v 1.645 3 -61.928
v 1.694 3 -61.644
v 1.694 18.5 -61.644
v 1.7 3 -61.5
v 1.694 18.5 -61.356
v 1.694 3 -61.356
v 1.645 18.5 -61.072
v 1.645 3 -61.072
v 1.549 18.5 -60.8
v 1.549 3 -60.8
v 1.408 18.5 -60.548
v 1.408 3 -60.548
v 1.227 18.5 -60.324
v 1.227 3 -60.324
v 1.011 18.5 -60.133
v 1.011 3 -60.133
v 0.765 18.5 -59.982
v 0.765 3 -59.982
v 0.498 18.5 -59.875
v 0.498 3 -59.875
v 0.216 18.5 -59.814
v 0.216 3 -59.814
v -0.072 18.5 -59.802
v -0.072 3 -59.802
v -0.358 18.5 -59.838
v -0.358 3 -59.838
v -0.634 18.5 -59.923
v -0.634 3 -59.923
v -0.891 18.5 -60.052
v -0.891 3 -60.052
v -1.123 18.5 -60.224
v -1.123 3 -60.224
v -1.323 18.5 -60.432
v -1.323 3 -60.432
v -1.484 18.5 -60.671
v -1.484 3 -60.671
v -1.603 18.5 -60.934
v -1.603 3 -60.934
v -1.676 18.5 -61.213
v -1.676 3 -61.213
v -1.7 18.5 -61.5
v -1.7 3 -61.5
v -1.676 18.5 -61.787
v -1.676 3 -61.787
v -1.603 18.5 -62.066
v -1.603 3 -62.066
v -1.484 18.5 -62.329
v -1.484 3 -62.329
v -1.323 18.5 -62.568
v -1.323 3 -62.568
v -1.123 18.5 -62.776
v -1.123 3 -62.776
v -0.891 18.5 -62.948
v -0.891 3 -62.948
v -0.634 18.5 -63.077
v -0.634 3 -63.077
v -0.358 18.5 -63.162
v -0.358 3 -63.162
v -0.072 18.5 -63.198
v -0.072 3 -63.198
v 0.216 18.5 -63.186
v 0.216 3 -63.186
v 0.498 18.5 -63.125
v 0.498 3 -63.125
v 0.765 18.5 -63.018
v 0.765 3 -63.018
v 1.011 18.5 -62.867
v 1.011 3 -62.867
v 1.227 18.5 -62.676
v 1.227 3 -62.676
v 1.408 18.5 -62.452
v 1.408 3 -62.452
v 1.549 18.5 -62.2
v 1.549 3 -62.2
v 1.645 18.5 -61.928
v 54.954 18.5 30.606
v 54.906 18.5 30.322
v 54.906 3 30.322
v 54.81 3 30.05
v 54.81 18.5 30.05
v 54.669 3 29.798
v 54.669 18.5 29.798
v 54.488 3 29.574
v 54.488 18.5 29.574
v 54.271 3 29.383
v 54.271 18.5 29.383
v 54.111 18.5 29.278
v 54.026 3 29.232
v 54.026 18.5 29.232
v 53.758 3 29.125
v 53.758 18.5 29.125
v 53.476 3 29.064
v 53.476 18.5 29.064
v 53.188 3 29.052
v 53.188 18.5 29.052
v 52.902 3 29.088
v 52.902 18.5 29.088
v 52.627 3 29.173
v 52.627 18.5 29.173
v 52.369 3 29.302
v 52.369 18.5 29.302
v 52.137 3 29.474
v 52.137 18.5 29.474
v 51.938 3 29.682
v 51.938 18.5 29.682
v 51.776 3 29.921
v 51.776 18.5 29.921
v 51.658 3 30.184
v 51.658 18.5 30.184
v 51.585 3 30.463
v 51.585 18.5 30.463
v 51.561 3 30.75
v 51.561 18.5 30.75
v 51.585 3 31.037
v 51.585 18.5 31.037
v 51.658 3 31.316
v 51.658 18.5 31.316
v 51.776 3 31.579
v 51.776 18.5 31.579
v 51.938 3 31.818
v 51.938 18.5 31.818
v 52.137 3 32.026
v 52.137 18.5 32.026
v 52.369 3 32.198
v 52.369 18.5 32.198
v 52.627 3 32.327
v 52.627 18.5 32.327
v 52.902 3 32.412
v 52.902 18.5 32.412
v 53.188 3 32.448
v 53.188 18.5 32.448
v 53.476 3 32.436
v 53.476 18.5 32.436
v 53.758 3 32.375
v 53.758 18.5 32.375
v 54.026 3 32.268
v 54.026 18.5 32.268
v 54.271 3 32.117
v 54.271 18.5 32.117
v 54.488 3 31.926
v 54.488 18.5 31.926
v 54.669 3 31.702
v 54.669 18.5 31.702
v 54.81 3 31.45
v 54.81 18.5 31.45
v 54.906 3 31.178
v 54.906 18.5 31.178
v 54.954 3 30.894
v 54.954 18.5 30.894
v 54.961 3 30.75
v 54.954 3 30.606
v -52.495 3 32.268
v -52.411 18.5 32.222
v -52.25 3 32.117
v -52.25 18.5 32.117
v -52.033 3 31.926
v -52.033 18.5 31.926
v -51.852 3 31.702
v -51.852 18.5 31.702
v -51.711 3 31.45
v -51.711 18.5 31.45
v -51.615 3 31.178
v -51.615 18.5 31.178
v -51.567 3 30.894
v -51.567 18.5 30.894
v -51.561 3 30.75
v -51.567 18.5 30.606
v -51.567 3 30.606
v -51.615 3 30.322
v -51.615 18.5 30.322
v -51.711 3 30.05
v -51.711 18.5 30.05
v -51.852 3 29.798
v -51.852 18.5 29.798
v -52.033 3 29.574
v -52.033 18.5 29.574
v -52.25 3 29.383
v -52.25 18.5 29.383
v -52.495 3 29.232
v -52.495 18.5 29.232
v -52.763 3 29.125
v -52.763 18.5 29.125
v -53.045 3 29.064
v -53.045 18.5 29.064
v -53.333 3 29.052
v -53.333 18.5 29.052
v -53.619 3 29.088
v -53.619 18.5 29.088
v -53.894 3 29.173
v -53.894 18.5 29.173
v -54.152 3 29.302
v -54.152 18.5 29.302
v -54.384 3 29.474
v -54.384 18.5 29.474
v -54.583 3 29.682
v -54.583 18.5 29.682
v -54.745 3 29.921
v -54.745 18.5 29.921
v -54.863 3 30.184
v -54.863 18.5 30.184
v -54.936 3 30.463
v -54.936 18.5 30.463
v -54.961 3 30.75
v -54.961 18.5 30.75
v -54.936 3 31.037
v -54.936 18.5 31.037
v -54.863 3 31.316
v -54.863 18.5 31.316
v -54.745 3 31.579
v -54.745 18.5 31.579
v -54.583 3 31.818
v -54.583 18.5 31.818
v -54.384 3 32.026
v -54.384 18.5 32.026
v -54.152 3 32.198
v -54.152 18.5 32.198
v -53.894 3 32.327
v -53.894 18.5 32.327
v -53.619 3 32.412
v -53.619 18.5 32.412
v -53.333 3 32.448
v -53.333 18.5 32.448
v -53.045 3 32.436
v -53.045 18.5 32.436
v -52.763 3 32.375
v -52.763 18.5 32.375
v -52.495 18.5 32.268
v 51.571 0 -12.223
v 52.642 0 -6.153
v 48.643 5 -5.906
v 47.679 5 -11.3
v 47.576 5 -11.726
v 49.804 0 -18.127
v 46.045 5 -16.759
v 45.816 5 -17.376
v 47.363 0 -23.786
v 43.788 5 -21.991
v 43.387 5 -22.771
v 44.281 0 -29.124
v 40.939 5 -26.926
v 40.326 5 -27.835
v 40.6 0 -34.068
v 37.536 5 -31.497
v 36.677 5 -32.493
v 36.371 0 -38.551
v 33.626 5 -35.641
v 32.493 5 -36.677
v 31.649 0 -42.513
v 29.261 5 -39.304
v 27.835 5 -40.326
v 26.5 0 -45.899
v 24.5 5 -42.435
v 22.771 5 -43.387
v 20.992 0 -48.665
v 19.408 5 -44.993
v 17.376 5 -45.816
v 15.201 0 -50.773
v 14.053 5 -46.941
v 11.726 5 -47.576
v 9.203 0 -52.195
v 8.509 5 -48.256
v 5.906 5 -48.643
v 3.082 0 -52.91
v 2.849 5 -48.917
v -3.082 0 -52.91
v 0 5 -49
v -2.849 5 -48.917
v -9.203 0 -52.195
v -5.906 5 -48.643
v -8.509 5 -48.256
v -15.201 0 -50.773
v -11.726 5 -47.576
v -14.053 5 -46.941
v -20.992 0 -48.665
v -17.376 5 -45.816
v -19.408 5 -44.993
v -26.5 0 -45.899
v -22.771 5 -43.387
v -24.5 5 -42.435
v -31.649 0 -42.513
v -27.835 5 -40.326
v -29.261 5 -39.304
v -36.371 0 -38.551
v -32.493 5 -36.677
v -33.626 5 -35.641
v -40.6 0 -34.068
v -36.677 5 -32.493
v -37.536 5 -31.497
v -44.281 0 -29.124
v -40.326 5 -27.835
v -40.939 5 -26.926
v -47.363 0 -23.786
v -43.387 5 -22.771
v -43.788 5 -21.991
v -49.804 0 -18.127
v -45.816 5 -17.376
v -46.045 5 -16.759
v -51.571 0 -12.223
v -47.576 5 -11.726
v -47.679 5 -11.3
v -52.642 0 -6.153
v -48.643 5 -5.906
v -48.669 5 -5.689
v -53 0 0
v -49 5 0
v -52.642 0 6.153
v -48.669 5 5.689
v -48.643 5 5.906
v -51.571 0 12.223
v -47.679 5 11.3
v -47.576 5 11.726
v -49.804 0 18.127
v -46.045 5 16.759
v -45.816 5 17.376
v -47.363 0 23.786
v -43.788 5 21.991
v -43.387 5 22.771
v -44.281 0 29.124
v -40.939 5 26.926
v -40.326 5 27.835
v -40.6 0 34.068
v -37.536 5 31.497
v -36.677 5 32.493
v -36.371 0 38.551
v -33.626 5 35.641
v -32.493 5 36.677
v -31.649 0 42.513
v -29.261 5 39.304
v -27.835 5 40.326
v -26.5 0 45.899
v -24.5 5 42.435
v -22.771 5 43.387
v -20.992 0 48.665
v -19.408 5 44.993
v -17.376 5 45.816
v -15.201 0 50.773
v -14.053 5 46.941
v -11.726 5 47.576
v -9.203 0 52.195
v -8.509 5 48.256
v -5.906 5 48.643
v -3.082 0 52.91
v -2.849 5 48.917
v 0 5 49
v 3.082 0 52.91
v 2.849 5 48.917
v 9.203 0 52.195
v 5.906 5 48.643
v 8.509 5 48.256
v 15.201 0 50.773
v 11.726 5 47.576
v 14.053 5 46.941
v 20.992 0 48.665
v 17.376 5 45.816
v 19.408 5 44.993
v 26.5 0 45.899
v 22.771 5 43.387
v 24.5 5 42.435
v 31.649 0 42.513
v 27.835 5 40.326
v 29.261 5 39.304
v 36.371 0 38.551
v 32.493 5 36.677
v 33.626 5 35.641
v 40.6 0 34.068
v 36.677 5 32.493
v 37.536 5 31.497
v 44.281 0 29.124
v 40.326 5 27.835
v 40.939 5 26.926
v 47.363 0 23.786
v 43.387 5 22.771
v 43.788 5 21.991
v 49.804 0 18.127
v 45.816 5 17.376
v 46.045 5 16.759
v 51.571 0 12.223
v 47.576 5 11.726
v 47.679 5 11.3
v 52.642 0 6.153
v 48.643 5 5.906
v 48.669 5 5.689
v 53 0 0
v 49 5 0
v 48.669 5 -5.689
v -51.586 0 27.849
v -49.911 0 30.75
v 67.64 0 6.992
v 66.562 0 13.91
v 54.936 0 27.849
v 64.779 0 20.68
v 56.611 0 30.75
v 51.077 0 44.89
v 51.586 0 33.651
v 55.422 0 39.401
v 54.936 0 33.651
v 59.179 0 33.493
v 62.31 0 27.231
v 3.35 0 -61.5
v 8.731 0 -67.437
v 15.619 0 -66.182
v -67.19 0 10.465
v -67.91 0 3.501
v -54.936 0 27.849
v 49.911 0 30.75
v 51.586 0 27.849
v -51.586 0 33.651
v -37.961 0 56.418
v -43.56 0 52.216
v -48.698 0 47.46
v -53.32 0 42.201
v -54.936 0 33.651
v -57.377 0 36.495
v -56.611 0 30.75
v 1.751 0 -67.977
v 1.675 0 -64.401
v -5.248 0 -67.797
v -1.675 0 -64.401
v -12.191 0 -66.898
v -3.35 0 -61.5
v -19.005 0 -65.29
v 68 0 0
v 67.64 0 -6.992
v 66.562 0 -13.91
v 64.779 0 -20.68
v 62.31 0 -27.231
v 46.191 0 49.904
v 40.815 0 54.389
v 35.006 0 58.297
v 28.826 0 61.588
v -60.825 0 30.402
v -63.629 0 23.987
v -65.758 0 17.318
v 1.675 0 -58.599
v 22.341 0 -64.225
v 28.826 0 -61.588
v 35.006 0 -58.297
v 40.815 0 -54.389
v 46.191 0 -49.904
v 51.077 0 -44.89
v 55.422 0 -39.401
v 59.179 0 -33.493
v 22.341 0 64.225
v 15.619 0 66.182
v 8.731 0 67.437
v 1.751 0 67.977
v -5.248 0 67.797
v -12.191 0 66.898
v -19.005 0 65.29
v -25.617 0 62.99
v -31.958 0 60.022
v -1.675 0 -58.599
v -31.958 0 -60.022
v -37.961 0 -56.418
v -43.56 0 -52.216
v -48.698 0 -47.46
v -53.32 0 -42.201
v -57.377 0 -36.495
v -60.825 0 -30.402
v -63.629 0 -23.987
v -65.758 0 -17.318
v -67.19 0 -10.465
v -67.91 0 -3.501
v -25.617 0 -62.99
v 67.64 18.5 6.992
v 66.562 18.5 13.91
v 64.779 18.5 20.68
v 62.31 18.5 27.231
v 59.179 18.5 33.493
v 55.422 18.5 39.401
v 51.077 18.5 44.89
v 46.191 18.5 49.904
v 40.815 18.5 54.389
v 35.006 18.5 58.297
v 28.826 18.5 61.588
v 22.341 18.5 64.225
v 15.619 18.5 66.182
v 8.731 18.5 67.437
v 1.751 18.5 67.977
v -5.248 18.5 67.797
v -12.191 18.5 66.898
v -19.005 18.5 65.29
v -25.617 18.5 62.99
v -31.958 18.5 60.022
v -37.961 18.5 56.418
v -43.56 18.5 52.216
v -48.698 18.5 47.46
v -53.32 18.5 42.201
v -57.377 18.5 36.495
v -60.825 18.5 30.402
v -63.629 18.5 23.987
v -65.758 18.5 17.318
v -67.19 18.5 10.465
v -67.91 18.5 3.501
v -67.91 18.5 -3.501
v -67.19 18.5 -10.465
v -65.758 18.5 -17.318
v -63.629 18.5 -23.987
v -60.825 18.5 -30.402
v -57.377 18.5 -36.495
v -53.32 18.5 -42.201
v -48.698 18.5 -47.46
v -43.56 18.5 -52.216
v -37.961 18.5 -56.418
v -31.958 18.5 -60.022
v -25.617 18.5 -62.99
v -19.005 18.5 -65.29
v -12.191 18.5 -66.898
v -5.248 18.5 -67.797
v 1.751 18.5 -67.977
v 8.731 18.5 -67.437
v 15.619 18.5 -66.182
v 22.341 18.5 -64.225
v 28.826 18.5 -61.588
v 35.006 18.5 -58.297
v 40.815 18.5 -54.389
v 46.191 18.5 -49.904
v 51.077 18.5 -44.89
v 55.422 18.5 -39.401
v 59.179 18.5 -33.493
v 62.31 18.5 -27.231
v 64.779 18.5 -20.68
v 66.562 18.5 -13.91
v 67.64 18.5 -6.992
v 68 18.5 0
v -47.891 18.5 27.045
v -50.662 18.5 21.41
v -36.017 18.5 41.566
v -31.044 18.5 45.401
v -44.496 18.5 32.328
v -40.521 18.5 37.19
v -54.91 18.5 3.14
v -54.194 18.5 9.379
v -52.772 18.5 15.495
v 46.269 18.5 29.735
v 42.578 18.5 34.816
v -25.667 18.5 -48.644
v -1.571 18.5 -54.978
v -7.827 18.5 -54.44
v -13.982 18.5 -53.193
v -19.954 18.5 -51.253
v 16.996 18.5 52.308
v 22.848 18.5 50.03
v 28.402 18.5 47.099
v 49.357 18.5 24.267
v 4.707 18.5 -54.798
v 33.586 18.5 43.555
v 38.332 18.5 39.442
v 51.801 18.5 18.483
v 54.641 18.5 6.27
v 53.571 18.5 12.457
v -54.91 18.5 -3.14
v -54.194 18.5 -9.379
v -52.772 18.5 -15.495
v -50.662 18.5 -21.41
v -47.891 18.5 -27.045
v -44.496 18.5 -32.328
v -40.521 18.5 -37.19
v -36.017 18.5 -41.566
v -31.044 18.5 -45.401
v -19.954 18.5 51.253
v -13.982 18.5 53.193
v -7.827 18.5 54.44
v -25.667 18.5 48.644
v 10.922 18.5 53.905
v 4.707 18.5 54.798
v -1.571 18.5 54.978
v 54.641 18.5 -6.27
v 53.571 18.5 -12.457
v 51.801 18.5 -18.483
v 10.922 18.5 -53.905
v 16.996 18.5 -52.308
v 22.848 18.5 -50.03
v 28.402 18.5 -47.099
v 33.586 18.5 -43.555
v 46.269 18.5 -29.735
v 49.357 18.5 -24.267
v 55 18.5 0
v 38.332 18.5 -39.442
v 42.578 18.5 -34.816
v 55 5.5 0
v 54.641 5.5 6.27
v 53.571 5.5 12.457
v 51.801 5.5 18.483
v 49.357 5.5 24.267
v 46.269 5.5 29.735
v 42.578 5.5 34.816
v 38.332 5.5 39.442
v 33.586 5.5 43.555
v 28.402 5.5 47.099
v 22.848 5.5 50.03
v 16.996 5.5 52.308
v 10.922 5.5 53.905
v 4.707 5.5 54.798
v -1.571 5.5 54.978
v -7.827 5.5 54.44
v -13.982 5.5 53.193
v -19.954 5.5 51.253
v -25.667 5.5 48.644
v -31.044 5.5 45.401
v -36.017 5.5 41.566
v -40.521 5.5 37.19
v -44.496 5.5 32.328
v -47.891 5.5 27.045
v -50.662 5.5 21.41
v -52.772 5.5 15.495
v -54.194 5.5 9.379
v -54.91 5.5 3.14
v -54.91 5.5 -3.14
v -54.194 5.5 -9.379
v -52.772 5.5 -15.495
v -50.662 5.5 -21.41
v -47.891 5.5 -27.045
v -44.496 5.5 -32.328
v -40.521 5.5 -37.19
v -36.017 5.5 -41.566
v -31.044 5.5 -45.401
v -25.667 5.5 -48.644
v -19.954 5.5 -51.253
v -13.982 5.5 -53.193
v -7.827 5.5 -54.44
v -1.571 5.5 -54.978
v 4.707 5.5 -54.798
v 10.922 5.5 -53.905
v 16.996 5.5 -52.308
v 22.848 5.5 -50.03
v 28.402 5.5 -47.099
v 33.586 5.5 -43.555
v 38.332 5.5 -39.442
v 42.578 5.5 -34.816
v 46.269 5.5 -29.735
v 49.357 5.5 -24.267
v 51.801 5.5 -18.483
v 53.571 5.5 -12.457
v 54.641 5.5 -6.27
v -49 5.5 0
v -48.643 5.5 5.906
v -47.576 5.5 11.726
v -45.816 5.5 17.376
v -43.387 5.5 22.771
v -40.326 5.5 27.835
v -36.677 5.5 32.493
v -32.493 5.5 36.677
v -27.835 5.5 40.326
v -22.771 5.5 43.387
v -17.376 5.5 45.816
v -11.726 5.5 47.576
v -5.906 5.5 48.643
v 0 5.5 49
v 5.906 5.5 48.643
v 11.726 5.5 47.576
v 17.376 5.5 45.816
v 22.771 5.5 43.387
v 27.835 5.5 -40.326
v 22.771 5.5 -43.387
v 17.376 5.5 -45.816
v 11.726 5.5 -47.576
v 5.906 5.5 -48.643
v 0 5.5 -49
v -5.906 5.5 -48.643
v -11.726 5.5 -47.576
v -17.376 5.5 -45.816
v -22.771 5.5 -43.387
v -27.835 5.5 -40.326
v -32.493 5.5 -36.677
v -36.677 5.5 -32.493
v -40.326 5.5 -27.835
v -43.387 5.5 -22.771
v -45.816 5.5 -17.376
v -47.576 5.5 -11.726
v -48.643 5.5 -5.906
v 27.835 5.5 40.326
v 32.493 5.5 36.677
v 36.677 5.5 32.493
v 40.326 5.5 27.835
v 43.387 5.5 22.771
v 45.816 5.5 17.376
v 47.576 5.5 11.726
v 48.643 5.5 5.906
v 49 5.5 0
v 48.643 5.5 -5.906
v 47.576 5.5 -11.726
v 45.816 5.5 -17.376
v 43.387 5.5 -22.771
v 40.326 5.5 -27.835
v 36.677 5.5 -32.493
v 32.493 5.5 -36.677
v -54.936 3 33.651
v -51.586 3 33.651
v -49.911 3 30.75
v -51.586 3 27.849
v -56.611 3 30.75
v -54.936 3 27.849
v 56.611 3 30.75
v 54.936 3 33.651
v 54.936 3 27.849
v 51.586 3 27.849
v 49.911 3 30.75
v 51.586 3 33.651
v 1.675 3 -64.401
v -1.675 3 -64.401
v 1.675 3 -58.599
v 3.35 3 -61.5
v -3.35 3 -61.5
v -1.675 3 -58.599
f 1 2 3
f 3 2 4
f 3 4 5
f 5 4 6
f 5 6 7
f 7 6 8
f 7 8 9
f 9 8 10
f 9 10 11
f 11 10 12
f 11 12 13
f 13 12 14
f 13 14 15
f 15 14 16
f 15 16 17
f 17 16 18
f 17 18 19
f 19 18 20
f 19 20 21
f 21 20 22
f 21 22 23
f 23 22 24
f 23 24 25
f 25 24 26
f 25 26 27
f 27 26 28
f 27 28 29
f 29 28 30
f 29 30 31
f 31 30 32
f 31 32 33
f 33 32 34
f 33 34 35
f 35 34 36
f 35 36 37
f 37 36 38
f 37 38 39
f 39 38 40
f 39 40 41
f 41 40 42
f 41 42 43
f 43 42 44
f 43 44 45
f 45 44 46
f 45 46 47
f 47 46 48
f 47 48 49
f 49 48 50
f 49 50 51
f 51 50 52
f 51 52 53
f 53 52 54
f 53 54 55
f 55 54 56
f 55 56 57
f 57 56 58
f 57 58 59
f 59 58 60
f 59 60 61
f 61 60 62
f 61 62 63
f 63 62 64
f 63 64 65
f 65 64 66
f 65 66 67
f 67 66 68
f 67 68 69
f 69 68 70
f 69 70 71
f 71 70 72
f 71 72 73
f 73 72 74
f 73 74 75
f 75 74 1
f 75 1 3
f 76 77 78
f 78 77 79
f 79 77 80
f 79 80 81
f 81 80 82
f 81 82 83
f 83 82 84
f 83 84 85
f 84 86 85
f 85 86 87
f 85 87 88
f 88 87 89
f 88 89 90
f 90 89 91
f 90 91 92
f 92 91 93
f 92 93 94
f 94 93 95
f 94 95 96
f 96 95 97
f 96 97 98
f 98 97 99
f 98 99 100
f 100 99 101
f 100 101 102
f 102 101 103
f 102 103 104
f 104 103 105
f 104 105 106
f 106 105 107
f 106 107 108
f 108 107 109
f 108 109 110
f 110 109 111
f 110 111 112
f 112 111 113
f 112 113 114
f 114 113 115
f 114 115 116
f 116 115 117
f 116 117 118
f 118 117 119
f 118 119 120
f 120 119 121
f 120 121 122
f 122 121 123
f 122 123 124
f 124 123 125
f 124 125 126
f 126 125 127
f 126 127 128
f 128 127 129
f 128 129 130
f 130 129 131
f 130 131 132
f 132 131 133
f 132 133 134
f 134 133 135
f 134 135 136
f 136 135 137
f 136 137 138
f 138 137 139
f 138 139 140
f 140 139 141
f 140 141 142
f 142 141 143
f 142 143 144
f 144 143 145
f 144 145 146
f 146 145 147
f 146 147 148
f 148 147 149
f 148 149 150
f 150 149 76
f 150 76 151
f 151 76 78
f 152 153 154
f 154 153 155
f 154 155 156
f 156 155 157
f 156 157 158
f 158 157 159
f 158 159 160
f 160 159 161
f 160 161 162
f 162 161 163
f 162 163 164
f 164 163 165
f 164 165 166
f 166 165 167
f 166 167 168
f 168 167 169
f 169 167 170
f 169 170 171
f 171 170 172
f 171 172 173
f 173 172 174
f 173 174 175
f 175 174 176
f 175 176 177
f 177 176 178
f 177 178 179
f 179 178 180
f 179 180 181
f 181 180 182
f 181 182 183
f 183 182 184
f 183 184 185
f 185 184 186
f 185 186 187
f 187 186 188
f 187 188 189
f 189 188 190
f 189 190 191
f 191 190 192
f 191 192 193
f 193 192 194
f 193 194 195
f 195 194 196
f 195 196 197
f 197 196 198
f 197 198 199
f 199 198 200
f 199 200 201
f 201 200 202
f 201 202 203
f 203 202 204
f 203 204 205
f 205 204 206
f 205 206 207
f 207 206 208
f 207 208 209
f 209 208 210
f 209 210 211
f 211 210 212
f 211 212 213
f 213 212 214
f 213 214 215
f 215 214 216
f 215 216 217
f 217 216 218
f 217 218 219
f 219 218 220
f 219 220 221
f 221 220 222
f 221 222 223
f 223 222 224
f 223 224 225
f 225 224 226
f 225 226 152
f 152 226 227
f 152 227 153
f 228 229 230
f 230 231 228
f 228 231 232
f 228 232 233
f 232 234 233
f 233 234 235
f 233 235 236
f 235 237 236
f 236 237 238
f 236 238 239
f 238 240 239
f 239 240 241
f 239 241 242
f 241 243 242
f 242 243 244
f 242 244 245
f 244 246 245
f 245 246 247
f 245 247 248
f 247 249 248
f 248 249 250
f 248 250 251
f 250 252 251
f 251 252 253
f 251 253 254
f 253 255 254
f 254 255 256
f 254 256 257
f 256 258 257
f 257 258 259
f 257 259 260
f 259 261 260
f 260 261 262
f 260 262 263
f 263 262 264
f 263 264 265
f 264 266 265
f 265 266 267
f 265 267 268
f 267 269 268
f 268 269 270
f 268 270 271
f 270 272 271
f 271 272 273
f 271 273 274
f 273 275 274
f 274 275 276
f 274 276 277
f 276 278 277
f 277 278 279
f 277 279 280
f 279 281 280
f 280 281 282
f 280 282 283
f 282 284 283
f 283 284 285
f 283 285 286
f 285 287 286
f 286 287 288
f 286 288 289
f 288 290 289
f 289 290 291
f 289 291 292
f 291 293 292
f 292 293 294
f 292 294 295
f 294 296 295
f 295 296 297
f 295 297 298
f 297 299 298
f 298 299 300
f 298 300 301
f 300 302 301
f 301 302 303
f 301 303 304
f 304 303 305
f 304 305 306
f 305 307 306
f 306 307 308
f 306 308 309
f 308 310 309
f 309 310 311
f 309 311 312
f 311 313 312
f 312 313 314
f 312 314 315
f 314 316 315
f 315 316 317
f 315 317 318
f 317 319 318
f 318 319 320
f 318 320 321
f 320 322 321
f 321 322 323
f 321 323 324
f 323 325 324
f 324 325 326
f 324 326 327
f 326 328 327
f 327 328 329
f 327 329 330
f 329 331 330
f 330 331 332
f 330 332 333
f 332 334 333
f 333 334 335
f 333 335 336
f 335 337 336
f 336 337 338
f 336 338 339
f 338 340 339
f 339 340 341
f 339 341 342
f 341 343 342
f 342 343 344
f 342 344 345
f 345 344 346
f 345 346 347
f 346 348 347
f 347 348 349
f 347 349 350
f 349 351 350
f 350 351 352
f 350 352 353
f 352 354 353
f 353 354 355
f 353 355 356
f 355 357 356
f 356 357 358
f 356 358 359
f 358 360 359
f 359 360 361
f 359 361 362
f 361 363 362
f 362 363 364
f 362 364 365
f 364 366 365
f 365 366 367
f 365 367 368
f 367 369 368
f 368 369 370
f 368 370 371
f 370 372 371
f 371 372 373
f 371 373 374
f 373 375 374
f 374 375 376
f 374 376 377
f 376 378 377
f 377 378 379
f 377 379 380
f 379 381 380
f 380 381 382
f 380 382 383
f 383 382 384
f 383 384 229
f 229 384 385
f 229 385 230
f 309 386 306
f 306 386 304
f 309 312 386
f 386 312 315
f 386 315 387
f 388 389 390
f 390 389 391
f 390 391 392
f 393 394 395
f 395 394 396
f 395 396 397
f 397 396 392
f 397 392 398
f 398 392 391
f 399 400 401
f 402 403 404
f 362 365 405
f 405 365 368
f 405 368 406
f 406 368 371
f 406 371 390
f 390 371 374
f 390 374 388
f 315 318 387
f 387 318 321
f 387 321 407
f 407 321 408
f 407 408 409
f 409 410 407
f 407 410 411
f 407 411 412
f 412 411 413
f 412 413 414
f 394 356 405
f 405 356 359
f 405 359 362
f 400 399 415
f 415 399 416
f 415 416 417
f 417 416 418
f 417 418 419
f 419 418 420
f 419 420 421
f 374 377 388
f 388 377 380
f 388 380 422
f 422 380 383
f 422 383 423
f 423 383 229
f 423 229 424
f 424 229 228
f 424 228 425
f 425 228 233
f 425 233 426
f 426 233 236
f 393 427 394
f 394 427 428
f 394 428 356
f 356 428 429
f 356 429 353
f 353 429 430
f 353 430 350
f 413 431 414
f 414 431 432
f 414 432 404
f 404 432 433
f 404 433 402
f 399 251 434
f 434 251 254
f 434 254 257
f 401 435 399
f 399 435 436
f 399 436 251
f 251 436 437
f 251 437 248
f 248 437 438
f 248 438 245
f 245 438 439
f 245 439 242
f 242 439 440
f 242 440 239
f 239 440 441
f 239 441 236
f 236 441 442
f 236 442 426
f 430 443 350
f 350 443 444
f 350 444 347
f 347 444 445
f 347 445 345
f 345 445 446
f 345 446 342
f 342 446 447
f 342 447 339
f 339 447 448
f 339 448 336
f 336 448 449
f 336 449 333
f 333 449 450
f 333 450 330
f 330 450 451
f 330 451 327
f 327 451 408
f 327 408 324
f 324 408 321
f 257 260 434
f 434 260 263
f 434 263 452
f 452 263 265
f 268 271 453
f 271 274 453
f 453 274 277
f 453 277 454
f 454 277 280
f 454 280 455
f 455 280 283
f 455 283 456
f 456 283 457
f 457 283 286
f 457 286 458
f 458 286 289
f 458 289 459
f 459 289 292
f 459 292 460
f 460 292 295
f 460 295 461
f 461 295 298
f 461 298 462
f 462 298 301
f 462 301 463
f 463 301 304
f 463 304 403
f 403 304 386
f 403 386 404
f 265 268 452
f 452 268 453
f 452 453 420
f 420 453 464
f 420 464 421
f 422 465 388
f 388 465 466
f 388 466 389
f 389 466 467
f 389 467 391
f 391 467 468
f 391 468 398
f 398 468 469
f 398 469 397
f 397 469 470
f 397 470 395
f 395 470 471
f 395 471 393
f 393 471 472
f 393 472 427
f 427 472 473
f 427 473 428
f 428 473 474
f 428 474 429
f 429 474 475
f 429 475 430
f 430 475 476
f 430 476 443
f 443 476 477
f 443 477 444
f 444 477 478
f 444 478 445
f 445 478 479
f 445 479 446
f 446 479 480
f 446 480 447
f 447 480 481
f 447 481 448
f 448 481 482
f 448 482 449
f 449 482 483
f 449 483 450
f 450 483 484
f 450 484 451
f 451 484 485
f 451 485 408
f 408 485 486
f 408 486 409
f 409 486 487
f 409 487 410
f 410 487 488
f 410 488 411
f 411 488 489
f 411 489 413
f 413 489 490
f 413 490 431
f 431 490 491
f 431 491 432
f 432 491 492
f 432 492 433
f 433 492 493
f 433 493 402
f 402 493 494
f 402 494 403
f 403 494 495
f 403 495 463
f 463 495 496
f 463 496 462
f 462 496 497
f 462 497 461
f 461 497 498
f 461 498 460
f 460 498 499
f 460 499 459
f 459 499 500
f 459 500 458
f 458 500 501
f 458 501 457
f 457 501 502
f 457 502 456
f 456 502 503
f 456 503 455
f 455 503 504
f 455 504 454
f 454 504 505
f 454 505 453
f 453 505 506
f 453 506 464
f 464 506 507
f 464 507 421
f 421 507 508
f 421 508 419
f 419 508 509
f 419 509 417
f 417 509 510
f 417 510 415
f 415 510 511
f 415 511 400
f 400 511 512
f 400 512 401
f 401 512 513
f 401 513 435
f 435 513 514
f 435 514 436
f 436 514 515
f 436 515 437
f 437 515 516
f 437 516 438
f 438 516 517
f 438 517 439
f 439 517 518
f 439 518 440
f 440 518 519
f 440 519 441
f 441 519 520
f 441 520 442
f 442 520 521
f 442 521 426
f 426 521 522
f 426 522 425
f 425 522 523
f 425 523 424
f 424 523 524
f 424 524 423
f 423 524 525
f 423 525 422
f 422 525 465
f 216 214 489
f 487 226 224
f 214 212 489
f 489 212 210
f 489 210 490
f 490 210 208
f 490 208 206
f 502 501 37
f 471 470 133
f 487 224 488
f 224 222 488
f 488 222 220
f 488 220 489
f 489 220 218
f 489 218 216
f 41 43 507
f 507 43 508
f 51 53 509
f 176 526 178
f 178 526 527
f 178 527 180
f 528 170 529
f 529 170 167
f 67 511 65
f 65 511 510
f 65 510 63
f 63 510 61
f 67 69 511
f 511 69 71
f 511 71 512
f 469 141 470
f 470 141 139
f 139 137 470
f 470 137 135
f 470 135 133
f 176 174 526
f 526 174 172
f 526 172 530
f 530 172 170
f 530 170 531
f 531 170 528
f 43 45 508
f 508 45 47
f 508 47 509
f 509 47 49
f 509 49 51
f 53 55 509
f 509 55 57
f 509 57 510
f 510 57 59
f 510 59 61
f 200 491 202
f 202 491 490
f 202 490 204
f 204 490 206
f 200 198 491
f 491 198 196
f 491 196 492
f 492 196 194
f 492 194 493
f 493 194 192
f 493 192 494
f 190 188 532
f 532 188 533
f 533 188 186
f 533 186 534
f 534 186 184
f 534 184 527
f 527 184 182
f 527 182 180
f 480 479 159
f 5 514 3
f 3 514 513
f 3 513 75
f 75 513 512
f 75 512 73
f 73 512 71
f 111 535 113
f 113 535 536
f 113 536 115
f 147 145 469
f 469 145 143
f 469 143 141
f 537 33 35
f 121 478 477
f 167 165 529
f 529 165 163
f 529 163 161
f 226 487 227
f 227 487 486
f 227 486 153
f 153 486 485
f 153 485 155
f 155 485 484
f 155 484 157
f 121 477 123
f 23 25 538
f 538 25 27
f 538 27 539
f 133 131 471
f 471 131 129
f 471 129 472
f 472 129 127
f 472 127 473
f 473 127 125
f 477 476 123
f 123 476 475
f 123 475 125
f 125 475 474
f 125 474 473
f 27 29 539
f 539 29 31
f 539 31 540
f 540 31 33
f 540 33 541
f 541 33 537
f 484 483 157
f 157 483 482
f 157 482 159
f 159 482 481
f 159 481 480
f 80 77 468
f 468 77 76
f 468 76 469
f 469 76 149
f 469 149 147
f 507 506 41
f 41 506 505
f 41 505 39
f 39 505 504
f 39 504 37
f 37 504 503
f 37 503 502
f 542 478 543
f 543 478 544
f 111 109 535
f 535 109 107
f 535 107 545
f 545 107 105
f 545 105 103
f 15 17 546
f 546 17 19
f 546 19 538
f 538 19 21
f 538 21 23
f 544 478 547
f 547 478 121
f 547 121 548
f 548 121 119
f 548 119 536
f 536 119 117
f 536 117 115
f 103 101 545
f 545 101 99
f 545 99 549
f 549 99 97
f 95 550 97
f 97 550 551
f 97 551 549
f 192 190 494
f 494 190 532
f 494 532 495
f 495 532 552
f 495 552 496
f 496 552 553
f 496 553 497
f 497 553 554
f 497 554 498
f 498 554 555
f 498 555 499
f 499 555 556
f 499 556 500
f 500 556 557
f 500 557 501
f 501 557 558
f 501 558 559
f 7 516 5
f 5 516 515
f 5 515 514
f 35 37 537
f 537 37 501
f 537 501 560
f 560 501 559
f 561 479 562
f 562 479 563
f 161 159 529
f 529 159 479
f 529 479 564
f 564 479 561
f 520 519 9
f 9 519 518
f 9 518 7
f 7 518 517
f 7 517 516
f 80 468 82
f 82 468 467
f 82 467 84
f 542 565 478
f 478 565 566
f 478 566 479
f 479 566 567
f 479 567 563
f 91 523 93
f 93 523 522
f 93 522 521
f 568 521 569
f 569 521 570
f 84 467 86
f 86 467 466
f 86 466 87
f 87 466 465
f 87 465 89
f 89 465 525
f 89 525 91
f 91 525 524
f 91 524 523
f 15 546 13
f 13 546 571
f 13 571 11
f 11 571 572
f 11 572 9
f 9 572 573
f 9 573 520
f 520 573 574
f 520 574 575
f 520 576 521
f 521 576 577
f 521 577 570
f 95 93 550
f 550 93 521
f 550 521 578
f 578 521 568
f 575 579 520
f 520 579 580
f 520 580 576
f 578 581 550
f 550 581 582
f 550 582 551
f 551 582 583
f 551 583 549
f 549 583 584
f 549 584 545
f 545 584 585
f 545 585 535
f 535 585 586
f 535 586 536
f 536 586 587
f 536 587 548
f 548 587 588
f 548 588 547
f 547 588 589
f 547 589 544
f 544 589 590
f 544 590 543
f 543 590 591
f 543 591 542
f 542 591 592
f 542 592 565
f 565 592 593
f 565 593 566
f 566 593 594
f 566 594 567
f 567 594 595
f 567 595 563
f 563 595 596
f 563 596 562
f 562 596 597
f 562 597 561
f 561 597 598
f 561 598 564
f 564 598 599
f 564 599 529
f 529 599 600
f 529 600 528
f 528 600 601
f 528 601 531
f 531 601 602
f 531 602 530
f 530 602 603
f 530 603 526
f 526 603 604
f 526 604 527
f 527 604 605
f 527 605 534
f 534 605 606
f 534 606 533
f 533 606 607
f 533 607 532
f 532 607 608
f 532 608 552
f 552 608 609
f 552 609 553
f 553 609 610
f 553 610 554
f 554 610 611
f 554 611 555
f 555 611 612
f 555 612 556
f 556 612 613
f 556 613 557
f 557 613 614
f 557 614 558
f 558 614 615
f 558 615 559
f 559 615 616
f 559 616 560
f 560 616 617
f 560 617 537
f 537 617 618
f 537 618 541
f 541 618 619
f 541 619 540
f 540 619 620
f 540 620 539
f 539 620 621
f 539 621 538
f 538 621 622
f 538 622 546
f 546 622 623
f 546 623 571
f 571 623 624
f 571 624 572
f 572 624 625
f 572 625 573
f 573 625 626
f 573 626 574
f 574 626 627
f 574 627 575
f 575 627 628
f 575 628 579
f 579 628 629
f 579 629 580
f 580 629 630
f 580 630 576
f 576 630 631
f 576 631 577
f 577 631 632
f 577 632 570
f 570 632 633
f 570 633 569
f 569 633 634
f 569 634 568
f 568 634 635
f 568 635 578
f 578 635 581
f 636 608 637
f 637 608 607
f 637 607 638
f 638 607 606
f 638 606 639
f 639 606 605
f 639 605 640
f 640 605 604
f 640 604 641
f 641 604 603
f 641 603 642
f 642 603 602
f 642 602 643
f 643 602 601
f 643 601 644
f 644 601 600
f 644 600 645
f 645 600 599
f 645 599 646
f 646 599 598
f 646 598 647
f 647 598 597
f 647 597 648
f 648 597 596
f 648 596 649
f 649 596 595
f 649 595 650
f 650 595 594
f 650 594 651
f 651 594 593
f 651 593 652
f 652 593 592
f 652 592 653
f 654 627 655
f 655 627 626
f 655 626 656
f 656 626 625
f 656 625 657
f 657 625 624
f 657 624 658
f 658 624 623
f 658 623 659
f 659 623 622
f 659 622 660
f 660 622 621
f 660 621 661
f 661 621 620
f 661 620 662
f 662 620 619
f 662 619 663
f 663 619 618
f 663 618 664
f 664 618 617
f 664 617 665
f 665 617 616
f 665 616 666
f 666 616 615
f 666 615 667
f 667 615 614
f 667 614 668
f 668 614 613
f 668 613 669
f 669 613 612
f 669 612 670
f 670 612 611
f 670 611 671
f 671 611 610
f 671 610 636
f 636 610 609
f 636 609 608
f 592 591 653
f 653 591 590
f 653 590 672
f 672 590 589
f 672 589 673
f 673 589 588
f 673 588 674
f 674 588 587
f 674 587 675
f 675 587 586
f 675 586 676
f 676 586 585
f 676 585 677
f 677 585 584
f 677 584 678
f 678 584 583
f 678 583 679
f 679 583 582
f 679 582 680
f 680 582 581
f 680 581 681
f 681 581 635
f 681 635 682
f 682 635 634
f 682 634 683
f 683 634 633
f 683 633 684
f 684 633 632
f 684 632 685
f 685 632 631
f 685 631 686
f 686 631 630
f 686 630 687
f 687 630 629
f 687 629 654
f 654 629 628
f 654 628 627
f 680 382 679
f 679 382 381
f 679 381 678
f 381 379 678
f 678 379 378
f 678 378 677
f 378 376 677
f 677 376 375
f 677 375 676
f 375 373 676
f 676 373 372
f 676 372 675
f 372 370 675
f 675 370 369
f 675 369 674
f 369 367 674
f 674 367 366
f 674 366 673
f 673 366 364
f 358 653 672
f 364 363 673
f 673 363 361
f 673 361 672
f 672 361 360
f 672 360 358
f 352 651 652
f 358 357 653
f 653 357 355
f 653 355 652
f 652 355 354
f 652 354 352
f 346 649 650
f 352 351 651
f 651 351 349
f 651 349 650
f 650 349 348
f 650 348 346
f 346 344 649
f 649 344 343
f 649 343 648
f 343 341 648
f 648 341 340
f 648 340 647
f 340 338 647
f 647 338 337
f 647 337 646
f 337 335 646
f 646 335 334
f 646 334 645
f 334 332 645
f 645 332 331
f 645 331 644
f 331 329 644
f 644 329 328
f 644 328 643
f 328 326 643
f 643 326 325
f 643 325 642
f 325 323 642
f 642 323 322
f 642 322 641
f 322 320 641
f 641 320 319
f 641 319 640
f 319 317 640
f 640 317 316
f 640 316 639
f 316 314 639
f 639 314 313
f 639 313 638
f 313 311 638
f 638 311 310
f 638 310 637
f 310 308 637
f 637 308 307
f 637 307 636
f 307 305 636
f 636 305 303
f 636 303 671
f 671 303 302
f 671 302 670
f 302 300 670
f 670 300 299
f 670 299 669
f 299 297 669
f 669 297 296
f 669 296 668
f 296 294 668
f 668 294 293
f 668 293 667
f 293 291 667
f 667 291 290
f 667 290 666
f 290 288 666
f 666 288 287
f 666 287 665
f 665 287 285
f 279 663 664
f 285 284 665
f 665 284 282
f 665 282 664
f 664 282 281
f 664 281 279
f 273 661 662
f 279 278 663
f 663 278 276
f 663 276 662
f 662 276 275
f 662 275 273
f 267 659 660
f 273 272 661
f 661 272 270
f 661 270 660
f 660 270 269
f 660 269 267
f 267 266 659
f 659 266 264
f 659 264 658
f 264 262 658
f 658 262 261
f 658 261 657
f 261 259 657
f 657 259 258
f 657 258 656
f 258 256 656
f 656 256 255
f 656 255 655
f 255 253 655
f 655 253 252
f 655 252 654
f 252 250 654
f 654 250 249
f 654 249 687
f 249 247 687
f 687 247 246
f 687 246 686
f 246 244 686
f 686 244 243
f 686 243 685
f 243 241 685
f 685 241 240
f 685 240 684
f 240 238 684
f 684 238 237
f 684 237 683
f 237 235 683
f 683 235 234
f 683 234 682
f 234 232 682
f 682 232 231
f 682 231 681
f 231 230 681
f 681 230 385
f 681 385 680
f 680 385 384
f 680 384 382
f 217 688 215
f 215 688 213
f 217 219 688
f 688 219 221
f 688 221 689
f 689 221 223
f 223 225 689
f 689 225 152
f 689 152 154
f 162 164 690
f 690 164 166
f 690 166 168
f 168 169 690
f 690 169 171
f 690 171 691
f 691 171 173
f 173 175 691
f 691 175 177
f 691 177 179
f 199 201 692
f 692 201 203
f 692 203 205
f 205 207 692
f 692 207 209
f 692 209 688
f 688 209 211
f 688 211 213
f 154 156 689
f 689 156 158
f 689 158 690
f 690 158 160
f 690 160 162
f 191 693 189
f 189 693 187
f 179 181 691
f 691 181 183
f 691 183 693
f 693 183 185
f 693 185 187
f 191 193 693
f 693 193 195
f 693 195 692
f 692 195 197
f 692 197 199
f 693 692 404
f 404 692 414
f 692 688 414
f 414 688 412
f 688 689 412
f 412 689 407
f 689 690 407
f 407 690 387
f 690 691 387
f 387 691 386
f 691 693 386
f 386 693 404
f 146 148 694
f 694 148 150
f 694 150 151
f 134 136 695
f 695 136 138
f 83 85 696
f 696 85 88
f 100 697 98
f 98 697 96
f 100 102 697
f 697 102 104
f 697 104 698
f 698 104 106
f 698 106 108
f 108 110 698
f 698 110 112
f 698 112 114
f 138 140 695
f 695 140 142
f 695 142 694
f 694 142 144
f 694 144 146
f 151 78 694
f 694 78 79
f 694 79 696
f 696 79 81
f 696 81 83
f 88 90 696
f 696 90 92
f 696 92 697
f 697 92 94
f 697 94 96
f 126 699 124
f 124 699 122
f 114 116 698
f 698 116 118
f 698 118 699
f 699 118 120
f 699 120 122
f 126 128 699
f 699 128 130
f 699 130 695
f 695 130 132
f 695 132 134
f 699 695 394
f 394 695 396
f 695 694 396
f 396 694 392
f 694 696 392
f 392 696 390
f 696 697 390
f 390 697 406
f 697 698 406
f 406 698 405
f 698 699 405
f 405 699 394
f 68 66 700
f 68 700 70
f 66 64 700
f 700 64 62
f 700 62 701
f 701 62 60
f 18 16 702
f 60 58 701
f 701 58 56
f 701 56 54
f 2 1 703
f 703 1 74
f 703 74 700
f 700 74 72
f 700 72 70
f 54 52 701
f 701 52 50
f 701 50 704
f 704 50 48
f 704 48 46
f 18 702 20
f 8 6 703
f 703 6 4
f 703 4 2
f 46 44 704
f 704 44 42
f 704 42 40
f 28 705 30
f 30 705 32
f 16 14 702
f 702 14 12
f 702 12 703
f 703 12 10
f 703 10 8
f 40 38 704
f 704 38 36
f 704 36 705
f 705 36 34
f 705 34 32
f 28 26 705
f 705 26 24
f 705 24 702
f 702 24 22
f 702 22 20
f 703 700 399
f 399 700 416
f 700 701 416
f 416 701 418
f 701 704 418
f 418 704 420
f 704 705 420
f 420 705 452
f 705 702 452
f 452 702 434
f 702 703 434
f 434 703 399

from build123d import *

# Parameters (mm, degrees)
SKETCH3_R          = 1.7
CUT_EXTRUDE1_DEPTH = 98.929821811
CIRPATTERN1_COUNT  = 3
CUT_EXTRUDE2_DEPTH = 3
CIRPATTERN2_COUNT  = 3


with BuildPart() as part:
    # Sketch2 → Revolve1 (revolve)
    with BuildSketch(Plane.XY):
        Polygon((53, 0), (68, 0), (68, 18.5), (55, 18.5), (55, 5.5), (49, 5.5), (49, 5), align=None)
    revolve(axis=Axis((0, -18.5, 0), (0, 1, 0)))

    # Sketch3 → Cut-Extrude1 (cut, through all)
    with BuildSketch(Plane(origin=(0, 18.5, 0), x_dir=(1, 0, 0), z_dir=(0, 1, 0))):
        with Locations(Location((0, 61.5, 0), (0, 0, 180))):
            Circle(SKETCH3_R)
    cut_extrude1 = extrude(amount=-CUT_EXTRUDE1_DEPTH, mode=Mode.SUBTRACT)

    # CirPattern1: Cut-Extrude1 ×3 about axis
    cirpattern1_axis = Axis((0, 0, 0), (0, 1, 0))
    for i in range(1, CIRPATTERN1_COUNT):
        add(cut_extrude1.rotate(cirpattern1_axis, i * 360 / CIRPATTERN1_COUNT), mode=Mode.SUBTRACT)

    # Sketch4 → Cut-Extrude2 (cut)
    with BuildSketch(Plane.XZ):
        Polygon((-54.935562333, 33.651185103), (-56.610562333, 30.75), (-54.935562333, 27.848814897), (-51.585562333, 27.848814897), (-49.910562333, 30.75), (-51.585562333, 33.651185103), align=None)
    cut_extrude2 = extrude(amount=-CUT_EXTRUDE2_DEPTH, mode=Mode.SUBTRACT)

    # CirPattern2: Cut-Extrude2 ×3 about axis
    cirpattern2_axis = Axis((0, 0, 0), (0, 1, 0))
    for i in range(1, CIRPATTERN2_COUNT):
        add(cut_extrude2.rotate(cirpattern2_axis, i * 360 / CIRPATTERN2_COUNT), mode=Mode.SUBTRACT)


solid = part.part
